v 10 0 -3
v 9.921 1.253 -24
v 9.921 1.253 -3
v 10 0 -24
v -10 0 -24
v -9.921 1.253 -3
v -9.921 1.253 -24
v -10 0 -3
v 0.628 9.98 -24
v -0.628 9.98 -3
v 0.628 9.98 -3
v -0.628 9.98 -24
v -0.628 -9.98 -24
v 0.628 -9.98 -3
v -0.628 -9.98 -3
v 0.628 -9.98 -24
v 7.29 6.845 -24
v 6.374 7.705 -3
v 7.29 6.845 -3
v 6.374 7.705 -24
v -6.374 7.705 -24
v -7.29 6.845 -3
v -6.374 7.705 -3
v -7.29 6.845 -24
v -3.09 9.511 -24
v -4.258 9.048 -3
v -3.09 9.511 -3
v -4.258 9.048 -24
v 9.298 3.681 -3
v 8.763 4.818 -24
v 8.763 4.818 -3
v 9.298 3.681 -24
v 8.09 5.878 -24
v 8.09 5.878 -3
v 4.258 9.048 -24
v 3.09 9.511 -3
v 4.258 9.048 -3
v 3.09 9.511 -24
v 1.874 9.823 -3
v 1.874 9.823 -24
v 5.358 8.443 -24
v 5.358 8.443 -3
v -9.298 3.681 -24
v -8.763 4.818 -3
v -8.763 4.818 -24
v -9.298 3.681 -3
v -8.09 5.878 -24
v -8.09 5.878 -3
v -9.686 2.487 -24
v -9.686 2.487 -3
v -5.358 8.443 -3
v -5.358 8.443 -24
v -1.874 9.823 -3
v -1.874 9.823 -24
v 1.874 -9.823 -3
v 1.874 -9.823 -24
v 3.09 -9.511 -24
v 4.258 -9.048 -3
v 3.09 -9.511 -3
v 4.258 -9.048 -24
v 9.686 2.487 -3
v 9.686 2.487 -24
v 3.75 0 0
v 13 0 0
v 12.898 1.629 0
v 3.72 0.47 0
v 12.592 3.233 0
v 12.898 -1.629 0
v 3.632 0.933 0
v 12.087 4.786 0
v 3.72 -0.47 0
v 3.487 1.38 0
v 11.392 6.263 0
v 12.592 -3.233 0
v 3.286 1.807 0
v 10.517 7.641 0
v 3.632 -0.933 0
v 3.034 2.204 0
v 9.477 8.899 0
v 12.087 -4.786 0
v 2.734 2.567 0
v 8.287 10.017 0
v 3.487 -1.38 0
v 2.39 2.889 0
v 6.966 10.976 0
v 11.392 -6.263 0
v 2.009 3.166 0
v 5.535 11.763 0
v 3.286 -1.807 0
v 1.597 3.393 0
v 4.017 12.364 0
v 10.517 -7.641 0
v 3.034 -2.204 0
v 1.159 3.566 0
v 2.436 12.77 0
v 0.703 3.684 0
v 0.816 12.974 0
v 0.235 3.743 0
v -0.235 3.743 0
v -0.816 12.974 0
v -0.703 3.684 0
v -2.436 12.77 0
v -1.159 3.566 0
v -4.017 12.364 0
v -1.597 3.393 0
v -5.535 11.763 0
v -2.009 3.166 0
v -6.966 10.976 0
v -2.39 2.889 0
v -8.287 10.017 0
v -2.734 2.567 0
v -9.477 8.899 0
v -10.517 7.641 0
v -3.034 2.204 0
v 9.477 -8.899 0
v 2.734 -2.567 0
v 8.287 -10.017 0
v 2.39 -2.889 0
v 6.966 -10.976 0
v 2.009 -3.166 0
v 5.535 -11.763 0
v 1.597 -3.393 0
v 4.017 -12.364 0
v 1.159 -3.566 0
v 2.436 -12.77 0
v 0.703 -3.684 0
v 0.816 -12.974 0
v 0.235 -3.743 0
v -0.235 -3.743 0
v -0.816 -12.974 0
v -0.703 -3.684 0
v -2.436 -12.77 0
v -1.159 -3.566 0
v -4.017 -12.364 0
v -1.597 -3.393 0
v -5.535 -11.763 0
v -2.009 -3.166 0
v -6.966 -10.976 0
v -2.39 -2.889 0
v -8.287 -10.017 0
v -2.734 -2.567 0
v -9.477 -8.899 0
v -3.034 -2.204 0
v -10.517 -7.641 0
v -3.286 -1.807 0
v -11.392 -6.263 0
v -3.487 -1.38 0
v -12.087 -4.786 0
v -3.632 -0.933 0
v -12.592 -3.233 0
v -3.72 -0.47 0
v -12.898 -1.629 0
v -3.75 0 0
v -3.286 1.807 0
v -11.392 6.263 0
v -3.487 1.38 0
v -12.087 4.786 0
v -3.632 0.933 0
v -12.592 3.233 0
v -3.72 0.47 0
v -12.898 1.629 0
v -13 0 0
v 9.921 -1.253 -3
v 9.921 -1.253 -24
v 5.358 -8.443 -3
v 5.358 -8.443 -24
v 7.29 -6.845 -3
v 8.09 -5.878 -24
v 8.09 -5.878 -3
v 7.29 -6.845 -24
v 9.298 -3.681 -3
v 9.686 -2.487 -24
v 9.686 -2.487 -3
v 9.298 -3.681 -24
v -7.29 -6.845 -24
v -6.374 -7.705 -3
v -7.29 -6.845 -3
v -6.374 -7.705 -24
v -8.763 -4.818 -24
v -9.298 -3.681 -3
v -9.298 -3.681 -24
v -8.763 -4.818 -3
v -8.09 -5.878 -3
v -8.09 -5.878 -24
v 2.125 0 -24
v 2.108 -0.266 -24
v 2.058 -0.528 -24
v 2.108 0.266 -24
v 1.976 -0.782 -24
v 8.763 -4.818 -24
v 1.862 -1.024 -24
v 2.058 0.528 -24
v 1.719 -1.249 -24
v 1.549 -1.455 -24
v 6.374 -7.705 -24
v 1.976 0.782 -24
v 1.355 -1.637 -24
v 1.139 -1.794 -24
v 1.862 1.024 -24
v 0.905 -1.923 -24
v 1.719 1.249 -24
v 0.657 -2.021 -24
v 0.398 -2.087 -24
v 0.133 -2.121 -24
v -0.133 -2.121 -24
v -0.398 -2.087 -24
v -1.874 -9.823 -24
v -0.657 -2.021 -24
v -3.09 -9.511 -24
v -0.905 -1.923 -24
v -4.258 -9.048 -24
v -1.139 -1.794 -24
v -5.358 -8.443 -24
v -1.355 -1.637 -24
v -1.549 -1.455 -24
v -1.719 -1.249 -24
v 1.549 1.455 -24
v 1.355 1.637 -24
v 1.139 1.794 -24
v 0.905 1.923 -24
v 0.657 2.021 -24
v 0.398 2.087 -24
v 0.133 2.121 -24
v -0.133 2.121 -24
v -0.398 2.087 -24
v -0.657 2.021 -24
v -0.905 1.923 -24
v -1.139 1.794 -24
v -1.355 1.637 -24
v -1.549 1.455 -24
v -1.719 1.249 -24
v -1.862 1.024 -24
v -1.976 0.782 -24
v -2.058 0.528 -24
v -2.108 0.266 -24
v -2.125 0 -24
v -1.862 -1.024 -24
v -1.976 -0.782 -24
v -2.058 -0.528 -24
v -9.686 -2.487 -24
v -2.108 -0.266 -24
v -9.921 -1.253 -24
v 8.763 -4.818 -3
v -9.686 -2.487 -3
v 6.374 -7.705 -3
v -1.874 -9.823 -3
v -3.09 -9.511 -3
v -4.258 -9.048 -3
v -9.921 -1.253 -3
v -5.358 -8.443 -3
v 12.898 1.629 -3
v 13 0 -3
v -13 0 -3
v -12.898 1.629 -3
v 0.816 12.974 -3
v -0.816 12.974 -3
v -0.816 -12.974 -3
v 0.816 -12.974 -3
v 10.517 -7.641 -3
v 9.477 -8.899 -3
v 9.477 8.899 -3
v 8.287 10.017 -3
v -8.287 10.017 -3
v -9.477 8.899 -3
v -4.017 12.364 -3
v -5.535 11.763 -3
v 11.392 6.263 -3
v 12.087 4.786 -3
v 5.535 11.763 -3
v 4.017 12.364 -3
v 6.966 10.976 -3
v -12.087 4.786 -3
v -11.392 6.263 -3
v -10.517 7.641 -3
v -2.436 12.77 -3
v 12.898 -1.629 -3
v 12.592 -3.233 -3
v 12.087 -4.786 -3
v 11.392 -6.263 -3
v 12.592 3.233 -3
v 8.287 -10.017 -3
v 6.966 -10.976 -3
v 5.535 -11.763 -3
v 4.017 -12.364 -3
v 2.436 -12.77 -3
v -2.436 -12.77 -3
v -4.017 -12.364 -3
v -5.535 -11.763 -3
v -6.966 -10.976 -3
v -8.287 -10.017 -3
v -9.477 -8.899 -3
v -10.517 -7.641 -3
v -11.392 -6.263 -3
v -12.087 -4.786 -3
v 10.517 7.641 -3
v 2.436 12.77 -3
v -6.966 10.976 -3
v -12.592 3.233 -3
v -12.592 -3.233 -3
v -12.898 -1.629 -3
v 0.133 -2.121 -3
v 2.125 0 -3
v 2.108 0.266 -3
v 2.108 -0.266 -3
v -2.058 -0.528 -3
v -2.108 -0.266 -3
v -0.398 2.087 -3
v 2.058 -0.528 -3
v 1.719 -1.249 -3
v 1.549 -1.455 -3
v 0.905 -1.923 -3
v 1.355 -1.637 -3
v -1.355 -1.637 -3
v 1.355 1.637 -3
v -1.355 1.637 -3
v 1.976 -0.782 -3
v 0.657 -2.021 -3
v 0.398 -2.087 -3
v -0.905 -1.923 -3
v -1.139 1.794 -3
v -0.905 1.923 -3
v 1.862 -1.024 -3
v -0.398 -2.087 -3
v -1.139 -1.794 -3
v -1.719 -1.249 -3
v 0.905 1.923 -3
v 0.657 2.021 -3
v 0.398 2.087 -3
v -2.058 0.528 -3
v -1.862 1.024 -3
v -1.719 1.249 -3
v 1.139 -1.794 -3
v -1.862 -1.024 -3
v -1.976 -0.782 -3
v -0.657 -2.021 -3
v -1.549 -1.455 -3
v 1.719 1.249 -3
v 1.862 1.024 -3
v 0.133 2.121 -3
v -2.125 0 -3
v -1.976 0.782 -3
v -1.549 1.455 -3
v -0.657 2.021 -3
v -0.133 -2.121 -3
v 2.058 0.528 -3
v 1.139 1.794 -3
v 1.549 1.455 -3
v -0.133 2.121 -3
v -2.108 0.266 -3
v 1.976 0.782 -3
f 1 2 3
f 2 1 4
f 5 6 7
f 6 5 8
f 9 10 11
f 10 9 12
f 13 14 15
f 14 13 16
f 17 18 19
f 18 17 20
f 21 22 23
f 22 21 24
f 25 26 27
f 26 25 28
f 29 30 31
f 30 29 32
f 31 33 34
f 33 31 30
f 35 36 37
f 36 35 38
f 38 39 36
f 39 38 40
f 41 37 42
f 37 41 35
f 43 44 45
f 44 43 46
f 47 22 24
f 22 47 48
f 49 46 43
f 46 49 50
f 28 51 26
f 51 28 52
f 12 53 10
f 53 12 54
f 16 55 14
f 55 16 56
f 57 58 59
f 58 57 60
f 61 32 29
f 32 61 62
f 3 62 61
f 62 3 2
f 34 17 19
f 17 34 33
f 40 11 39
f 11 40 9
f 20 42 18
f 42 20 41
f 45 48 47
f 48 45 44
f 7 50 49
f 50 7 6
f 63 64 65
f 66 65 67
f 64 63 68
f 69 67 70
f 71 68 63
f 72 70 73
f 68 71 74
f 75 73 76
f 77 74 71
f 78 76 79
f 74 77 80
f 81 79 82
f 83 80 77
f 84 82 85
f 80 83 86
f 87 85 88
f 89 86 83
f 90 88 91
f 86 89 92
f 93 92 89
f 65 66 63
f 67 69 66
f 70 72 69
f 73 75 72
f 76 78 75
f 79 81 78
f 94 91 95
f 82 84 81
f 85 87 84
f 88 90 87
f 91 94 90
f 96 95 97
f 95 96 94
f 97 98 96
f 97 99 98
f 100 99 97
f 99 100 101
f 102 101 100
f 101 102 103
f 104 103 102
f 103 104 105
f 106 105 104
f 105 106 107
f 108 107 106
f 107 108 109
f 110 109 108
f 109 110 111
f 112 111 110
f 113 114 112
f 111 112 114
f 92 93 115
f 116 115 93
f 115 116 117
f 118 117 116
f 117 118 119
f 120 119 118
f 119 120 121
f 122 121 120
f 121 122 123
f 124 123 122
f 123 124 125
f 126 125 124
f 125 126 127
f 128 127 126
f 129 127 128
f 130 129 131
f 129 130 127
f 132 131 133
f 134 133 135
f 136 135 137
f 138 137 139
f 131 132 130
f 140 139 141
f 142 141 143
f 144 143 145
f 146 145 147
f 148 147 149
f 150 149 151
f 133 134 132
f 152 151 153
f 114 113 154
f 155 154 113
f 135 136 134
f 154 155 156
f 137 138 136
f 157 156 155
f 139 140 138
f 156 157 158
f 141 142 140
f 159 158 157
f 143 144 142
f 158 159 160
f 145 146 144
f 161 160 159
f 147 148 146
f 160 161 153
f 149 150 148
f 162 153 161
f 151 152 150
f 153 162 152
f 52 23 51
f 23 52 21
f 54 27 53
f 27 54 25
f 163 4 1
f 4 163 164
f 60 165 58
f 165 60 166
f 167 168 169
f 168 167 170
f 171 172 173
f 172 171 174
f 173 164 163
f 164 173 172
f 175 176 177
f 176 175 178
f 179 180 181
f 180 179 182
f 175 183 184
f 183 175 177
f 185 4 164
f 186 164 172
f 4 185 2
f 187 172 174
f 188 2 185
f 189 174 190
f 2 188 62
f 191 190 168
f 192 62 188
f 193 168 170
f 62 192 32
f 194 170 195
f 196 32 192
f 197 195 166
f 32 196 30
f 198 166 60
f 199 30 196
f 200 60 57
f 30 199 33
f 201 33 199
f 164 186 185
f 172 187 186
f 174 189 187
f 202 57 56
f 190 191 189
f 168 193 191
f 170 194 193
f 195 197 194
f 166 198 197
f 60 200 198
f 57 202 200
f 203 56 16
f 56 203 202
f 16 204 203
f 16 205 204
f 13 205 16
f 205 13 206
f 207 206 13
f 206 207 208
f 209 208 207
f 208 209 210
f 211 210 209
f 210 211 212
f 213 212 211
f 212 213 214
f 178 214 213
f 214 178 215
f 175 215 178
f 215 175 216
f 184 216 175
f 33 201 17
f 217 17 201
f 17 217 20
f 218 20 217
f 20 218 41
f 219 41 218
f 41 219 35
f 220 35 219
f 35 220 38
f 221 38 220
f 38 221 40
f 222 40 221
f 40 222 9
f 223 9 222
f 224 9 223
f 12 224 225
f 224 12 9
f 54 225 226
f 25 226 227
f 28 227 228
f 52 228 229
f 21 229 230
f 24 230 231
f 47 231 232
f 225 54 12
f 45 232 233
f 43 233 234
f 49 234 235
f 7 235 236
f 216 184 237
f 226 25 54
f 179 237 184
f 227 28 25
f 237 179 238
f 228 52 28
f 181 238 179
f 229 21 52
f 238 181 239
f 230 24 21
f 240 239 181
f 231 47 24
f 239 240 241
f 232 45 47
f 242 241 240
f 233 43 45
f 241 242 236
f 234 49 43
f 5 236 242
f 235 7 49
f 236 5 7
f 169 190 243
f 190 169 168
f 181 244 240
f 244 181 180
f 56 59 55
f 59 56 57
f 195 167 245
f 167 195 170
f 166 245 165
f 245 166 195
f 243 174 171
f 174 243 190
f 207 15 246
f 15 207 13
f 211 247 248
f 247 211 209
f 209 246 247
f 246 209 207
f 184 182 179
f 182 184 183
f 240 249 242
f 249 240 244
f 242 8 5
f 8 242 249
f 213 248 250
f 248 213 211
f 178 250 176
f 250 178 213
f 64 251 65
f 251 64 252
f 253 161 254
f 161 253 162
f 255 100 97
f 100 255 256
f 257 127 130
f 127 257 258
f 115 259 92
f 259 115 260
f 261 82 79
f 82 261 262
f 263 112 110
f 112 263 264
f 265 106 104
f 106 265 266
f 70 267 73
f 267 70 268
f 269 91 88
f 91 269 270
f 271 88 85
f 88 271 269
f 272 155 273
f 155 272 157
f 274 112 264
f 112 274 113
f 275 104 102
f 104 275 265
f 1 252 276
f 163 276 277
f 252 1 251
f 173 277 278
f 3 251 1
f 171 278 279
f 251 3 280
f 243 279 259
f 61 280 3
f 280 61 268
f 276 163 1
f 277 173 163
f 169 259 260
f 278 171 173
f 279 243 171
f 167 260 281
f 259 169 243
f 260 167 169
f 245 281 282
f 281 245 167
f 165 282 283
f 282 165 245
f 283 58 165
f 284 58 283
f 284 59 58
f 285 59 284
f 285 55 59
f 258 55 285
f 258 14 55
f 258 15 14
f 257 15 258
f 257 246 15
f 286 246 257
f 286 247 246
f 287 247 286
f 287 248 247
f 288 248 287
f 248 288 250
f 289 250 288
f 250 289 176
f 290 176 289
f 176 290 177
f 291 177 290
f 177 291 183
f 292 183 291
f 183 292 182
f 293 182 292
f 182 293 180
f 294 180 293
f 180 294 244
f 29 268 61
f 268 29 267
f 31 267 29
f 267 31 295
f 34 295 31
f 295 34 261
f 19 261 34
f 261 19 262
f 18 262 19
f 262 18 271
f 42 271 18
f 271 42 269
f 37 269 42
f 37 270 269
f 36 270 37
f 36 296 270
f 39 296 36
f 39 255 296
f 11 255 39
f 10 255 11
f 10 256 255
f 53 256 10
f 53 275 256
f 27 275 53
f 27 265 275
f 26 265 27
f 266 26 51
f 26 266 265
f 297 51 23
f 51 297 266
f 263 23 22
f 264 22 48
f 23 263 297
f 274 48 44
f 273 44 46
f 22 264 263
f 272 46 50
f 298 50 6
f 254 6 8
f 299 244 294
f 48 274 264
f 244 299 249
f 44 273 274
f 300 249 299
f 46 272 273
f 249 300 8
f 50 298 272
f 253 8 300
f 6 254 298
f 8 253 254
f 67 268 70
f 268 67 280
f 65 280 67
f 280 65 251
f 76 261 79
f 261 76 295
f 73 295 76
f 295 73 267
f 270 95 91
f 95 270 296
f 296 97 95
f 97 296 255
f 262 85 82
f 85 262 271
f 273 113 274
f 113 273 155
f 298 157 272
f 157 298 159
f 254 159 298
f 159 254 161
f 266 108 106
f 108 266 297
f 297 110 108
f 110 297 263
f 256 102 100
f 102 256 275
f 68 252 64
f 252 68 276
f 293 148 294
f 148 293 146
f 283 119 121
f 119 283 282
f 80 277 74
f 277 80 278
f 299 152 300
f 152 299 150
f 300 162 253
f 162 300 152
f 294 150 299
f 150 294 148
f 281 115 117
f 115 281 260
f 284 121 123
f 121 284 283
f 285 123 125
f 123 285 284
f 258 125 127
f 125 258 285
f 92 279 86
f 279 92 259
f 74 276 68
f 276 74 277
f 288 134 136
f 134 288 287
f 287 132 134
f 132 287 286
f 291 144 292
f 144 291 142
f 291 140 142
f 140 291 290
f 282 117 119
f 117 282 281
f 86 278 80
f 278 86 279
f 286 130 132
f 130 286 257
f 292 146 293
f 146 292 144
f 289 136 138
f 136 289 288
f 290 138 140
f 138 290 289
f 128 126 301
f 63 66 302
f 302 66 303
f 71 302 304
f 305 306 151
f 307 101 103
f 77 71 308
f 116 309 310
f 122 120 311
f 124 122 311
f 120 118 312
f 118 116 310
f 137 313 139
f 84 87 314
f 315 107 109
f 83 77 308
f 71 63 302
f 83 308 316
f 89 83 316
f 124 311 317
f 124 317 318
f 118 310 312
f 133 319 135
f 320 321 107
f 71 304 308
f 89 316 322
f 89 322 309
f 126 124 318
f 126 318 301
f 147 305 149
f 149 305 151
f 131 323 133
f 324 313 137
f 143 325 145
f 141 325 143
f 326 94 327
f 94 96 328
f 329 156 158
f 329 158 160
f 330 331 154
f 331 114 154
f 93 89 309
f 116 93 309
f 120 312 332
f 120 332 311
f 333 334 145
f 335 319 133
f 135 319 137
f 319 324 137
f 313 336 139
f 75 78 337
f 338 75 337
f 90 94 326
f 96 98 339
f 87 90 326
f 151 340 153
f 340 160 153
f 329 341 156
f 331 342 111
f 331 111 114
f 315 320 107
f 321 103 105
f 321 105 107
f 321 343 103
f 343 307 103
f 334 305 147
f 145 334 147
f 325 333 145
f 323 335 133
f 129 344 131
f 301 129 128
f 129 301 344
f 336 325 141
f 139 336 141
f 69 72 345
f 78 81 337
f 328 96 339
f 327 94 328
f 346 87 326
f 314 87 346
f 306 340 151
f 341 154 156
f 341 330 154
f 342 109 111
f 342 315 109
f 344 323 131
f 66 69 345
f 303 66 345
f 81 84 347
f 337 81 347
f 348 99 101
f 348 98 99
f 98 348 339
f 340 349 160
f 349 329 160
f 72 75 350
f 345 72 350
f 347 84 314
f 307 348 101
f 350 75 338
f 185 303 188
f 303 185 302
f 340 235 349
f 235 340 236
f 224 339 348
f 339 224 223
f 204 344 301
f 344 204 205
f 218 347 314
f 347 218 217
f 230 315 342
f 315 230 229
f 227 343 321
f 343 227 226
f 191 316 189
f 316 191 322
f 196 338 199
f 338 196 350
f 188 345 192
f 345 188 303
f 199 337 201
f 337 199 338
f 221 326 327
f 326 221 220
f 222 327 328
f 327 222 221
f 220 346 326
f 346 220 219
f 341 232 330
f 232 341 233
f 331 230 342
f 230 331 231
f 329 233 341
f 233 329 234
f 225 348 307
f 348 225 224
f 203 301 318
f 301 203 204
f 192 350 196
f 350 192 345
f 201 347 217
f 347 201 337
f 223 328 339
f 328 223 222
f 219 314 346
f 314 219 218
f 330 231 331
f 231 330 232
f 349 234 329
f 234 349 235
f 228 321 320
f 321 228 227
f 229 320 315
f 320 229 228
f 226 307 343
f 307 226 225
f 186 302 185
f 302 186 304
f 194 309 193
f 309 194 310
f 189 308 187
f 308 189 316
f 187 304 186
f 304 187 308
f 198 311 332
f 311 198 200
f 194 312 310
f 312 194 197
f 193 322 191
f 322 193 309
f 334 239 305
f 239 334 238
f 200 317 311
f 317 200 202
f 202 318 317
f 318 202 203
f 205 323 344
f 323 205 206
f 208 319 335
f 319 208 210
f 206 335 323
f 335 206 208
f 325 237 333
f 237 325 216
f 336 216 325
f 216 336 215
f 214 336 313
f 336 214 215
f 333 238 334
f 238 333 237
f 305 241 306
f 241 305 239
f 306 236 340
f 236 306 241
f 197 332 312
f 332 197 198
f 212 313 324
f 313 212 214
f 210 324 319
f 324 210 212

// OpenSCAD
$fn = 50;


difference() {
	union() {
		translate(v = [0, 0, -24.0000000000]) {
			cylinder(h = 24, r = 10.0000000000);
		}
		translate(v = [0, 0, -3.0000000000]) {
			cylinder(h = 3, r = 13.0000000000);
		}
	}
	union() {
		translate(v = [0, 0, 0]) {
			rotate(a = [0, 0, 0]) {
				difference() {
					union() {
						#translate(v = [0, 0, -24.0000000000]) {
							cylinder(h = 24, r = 2.0000000000);
						}
						#translate(v = [0, 0, -3]) {
							cylinder(h = 3, r = 10.0000000000, r1 = 2.1250000000, r2 = 3.7500000000);
						}
						#translate(v = [0, 0, -24.0000000000]) {
							cylinder(h = 24, r = 2.1250000000);
						}
						#translate(v = [0, 0, -24.0000000000]) {
							cylinder(h = 24, r = 2.0000000000);
						}
					}
					union();
				}
			}
		}
	}
}
